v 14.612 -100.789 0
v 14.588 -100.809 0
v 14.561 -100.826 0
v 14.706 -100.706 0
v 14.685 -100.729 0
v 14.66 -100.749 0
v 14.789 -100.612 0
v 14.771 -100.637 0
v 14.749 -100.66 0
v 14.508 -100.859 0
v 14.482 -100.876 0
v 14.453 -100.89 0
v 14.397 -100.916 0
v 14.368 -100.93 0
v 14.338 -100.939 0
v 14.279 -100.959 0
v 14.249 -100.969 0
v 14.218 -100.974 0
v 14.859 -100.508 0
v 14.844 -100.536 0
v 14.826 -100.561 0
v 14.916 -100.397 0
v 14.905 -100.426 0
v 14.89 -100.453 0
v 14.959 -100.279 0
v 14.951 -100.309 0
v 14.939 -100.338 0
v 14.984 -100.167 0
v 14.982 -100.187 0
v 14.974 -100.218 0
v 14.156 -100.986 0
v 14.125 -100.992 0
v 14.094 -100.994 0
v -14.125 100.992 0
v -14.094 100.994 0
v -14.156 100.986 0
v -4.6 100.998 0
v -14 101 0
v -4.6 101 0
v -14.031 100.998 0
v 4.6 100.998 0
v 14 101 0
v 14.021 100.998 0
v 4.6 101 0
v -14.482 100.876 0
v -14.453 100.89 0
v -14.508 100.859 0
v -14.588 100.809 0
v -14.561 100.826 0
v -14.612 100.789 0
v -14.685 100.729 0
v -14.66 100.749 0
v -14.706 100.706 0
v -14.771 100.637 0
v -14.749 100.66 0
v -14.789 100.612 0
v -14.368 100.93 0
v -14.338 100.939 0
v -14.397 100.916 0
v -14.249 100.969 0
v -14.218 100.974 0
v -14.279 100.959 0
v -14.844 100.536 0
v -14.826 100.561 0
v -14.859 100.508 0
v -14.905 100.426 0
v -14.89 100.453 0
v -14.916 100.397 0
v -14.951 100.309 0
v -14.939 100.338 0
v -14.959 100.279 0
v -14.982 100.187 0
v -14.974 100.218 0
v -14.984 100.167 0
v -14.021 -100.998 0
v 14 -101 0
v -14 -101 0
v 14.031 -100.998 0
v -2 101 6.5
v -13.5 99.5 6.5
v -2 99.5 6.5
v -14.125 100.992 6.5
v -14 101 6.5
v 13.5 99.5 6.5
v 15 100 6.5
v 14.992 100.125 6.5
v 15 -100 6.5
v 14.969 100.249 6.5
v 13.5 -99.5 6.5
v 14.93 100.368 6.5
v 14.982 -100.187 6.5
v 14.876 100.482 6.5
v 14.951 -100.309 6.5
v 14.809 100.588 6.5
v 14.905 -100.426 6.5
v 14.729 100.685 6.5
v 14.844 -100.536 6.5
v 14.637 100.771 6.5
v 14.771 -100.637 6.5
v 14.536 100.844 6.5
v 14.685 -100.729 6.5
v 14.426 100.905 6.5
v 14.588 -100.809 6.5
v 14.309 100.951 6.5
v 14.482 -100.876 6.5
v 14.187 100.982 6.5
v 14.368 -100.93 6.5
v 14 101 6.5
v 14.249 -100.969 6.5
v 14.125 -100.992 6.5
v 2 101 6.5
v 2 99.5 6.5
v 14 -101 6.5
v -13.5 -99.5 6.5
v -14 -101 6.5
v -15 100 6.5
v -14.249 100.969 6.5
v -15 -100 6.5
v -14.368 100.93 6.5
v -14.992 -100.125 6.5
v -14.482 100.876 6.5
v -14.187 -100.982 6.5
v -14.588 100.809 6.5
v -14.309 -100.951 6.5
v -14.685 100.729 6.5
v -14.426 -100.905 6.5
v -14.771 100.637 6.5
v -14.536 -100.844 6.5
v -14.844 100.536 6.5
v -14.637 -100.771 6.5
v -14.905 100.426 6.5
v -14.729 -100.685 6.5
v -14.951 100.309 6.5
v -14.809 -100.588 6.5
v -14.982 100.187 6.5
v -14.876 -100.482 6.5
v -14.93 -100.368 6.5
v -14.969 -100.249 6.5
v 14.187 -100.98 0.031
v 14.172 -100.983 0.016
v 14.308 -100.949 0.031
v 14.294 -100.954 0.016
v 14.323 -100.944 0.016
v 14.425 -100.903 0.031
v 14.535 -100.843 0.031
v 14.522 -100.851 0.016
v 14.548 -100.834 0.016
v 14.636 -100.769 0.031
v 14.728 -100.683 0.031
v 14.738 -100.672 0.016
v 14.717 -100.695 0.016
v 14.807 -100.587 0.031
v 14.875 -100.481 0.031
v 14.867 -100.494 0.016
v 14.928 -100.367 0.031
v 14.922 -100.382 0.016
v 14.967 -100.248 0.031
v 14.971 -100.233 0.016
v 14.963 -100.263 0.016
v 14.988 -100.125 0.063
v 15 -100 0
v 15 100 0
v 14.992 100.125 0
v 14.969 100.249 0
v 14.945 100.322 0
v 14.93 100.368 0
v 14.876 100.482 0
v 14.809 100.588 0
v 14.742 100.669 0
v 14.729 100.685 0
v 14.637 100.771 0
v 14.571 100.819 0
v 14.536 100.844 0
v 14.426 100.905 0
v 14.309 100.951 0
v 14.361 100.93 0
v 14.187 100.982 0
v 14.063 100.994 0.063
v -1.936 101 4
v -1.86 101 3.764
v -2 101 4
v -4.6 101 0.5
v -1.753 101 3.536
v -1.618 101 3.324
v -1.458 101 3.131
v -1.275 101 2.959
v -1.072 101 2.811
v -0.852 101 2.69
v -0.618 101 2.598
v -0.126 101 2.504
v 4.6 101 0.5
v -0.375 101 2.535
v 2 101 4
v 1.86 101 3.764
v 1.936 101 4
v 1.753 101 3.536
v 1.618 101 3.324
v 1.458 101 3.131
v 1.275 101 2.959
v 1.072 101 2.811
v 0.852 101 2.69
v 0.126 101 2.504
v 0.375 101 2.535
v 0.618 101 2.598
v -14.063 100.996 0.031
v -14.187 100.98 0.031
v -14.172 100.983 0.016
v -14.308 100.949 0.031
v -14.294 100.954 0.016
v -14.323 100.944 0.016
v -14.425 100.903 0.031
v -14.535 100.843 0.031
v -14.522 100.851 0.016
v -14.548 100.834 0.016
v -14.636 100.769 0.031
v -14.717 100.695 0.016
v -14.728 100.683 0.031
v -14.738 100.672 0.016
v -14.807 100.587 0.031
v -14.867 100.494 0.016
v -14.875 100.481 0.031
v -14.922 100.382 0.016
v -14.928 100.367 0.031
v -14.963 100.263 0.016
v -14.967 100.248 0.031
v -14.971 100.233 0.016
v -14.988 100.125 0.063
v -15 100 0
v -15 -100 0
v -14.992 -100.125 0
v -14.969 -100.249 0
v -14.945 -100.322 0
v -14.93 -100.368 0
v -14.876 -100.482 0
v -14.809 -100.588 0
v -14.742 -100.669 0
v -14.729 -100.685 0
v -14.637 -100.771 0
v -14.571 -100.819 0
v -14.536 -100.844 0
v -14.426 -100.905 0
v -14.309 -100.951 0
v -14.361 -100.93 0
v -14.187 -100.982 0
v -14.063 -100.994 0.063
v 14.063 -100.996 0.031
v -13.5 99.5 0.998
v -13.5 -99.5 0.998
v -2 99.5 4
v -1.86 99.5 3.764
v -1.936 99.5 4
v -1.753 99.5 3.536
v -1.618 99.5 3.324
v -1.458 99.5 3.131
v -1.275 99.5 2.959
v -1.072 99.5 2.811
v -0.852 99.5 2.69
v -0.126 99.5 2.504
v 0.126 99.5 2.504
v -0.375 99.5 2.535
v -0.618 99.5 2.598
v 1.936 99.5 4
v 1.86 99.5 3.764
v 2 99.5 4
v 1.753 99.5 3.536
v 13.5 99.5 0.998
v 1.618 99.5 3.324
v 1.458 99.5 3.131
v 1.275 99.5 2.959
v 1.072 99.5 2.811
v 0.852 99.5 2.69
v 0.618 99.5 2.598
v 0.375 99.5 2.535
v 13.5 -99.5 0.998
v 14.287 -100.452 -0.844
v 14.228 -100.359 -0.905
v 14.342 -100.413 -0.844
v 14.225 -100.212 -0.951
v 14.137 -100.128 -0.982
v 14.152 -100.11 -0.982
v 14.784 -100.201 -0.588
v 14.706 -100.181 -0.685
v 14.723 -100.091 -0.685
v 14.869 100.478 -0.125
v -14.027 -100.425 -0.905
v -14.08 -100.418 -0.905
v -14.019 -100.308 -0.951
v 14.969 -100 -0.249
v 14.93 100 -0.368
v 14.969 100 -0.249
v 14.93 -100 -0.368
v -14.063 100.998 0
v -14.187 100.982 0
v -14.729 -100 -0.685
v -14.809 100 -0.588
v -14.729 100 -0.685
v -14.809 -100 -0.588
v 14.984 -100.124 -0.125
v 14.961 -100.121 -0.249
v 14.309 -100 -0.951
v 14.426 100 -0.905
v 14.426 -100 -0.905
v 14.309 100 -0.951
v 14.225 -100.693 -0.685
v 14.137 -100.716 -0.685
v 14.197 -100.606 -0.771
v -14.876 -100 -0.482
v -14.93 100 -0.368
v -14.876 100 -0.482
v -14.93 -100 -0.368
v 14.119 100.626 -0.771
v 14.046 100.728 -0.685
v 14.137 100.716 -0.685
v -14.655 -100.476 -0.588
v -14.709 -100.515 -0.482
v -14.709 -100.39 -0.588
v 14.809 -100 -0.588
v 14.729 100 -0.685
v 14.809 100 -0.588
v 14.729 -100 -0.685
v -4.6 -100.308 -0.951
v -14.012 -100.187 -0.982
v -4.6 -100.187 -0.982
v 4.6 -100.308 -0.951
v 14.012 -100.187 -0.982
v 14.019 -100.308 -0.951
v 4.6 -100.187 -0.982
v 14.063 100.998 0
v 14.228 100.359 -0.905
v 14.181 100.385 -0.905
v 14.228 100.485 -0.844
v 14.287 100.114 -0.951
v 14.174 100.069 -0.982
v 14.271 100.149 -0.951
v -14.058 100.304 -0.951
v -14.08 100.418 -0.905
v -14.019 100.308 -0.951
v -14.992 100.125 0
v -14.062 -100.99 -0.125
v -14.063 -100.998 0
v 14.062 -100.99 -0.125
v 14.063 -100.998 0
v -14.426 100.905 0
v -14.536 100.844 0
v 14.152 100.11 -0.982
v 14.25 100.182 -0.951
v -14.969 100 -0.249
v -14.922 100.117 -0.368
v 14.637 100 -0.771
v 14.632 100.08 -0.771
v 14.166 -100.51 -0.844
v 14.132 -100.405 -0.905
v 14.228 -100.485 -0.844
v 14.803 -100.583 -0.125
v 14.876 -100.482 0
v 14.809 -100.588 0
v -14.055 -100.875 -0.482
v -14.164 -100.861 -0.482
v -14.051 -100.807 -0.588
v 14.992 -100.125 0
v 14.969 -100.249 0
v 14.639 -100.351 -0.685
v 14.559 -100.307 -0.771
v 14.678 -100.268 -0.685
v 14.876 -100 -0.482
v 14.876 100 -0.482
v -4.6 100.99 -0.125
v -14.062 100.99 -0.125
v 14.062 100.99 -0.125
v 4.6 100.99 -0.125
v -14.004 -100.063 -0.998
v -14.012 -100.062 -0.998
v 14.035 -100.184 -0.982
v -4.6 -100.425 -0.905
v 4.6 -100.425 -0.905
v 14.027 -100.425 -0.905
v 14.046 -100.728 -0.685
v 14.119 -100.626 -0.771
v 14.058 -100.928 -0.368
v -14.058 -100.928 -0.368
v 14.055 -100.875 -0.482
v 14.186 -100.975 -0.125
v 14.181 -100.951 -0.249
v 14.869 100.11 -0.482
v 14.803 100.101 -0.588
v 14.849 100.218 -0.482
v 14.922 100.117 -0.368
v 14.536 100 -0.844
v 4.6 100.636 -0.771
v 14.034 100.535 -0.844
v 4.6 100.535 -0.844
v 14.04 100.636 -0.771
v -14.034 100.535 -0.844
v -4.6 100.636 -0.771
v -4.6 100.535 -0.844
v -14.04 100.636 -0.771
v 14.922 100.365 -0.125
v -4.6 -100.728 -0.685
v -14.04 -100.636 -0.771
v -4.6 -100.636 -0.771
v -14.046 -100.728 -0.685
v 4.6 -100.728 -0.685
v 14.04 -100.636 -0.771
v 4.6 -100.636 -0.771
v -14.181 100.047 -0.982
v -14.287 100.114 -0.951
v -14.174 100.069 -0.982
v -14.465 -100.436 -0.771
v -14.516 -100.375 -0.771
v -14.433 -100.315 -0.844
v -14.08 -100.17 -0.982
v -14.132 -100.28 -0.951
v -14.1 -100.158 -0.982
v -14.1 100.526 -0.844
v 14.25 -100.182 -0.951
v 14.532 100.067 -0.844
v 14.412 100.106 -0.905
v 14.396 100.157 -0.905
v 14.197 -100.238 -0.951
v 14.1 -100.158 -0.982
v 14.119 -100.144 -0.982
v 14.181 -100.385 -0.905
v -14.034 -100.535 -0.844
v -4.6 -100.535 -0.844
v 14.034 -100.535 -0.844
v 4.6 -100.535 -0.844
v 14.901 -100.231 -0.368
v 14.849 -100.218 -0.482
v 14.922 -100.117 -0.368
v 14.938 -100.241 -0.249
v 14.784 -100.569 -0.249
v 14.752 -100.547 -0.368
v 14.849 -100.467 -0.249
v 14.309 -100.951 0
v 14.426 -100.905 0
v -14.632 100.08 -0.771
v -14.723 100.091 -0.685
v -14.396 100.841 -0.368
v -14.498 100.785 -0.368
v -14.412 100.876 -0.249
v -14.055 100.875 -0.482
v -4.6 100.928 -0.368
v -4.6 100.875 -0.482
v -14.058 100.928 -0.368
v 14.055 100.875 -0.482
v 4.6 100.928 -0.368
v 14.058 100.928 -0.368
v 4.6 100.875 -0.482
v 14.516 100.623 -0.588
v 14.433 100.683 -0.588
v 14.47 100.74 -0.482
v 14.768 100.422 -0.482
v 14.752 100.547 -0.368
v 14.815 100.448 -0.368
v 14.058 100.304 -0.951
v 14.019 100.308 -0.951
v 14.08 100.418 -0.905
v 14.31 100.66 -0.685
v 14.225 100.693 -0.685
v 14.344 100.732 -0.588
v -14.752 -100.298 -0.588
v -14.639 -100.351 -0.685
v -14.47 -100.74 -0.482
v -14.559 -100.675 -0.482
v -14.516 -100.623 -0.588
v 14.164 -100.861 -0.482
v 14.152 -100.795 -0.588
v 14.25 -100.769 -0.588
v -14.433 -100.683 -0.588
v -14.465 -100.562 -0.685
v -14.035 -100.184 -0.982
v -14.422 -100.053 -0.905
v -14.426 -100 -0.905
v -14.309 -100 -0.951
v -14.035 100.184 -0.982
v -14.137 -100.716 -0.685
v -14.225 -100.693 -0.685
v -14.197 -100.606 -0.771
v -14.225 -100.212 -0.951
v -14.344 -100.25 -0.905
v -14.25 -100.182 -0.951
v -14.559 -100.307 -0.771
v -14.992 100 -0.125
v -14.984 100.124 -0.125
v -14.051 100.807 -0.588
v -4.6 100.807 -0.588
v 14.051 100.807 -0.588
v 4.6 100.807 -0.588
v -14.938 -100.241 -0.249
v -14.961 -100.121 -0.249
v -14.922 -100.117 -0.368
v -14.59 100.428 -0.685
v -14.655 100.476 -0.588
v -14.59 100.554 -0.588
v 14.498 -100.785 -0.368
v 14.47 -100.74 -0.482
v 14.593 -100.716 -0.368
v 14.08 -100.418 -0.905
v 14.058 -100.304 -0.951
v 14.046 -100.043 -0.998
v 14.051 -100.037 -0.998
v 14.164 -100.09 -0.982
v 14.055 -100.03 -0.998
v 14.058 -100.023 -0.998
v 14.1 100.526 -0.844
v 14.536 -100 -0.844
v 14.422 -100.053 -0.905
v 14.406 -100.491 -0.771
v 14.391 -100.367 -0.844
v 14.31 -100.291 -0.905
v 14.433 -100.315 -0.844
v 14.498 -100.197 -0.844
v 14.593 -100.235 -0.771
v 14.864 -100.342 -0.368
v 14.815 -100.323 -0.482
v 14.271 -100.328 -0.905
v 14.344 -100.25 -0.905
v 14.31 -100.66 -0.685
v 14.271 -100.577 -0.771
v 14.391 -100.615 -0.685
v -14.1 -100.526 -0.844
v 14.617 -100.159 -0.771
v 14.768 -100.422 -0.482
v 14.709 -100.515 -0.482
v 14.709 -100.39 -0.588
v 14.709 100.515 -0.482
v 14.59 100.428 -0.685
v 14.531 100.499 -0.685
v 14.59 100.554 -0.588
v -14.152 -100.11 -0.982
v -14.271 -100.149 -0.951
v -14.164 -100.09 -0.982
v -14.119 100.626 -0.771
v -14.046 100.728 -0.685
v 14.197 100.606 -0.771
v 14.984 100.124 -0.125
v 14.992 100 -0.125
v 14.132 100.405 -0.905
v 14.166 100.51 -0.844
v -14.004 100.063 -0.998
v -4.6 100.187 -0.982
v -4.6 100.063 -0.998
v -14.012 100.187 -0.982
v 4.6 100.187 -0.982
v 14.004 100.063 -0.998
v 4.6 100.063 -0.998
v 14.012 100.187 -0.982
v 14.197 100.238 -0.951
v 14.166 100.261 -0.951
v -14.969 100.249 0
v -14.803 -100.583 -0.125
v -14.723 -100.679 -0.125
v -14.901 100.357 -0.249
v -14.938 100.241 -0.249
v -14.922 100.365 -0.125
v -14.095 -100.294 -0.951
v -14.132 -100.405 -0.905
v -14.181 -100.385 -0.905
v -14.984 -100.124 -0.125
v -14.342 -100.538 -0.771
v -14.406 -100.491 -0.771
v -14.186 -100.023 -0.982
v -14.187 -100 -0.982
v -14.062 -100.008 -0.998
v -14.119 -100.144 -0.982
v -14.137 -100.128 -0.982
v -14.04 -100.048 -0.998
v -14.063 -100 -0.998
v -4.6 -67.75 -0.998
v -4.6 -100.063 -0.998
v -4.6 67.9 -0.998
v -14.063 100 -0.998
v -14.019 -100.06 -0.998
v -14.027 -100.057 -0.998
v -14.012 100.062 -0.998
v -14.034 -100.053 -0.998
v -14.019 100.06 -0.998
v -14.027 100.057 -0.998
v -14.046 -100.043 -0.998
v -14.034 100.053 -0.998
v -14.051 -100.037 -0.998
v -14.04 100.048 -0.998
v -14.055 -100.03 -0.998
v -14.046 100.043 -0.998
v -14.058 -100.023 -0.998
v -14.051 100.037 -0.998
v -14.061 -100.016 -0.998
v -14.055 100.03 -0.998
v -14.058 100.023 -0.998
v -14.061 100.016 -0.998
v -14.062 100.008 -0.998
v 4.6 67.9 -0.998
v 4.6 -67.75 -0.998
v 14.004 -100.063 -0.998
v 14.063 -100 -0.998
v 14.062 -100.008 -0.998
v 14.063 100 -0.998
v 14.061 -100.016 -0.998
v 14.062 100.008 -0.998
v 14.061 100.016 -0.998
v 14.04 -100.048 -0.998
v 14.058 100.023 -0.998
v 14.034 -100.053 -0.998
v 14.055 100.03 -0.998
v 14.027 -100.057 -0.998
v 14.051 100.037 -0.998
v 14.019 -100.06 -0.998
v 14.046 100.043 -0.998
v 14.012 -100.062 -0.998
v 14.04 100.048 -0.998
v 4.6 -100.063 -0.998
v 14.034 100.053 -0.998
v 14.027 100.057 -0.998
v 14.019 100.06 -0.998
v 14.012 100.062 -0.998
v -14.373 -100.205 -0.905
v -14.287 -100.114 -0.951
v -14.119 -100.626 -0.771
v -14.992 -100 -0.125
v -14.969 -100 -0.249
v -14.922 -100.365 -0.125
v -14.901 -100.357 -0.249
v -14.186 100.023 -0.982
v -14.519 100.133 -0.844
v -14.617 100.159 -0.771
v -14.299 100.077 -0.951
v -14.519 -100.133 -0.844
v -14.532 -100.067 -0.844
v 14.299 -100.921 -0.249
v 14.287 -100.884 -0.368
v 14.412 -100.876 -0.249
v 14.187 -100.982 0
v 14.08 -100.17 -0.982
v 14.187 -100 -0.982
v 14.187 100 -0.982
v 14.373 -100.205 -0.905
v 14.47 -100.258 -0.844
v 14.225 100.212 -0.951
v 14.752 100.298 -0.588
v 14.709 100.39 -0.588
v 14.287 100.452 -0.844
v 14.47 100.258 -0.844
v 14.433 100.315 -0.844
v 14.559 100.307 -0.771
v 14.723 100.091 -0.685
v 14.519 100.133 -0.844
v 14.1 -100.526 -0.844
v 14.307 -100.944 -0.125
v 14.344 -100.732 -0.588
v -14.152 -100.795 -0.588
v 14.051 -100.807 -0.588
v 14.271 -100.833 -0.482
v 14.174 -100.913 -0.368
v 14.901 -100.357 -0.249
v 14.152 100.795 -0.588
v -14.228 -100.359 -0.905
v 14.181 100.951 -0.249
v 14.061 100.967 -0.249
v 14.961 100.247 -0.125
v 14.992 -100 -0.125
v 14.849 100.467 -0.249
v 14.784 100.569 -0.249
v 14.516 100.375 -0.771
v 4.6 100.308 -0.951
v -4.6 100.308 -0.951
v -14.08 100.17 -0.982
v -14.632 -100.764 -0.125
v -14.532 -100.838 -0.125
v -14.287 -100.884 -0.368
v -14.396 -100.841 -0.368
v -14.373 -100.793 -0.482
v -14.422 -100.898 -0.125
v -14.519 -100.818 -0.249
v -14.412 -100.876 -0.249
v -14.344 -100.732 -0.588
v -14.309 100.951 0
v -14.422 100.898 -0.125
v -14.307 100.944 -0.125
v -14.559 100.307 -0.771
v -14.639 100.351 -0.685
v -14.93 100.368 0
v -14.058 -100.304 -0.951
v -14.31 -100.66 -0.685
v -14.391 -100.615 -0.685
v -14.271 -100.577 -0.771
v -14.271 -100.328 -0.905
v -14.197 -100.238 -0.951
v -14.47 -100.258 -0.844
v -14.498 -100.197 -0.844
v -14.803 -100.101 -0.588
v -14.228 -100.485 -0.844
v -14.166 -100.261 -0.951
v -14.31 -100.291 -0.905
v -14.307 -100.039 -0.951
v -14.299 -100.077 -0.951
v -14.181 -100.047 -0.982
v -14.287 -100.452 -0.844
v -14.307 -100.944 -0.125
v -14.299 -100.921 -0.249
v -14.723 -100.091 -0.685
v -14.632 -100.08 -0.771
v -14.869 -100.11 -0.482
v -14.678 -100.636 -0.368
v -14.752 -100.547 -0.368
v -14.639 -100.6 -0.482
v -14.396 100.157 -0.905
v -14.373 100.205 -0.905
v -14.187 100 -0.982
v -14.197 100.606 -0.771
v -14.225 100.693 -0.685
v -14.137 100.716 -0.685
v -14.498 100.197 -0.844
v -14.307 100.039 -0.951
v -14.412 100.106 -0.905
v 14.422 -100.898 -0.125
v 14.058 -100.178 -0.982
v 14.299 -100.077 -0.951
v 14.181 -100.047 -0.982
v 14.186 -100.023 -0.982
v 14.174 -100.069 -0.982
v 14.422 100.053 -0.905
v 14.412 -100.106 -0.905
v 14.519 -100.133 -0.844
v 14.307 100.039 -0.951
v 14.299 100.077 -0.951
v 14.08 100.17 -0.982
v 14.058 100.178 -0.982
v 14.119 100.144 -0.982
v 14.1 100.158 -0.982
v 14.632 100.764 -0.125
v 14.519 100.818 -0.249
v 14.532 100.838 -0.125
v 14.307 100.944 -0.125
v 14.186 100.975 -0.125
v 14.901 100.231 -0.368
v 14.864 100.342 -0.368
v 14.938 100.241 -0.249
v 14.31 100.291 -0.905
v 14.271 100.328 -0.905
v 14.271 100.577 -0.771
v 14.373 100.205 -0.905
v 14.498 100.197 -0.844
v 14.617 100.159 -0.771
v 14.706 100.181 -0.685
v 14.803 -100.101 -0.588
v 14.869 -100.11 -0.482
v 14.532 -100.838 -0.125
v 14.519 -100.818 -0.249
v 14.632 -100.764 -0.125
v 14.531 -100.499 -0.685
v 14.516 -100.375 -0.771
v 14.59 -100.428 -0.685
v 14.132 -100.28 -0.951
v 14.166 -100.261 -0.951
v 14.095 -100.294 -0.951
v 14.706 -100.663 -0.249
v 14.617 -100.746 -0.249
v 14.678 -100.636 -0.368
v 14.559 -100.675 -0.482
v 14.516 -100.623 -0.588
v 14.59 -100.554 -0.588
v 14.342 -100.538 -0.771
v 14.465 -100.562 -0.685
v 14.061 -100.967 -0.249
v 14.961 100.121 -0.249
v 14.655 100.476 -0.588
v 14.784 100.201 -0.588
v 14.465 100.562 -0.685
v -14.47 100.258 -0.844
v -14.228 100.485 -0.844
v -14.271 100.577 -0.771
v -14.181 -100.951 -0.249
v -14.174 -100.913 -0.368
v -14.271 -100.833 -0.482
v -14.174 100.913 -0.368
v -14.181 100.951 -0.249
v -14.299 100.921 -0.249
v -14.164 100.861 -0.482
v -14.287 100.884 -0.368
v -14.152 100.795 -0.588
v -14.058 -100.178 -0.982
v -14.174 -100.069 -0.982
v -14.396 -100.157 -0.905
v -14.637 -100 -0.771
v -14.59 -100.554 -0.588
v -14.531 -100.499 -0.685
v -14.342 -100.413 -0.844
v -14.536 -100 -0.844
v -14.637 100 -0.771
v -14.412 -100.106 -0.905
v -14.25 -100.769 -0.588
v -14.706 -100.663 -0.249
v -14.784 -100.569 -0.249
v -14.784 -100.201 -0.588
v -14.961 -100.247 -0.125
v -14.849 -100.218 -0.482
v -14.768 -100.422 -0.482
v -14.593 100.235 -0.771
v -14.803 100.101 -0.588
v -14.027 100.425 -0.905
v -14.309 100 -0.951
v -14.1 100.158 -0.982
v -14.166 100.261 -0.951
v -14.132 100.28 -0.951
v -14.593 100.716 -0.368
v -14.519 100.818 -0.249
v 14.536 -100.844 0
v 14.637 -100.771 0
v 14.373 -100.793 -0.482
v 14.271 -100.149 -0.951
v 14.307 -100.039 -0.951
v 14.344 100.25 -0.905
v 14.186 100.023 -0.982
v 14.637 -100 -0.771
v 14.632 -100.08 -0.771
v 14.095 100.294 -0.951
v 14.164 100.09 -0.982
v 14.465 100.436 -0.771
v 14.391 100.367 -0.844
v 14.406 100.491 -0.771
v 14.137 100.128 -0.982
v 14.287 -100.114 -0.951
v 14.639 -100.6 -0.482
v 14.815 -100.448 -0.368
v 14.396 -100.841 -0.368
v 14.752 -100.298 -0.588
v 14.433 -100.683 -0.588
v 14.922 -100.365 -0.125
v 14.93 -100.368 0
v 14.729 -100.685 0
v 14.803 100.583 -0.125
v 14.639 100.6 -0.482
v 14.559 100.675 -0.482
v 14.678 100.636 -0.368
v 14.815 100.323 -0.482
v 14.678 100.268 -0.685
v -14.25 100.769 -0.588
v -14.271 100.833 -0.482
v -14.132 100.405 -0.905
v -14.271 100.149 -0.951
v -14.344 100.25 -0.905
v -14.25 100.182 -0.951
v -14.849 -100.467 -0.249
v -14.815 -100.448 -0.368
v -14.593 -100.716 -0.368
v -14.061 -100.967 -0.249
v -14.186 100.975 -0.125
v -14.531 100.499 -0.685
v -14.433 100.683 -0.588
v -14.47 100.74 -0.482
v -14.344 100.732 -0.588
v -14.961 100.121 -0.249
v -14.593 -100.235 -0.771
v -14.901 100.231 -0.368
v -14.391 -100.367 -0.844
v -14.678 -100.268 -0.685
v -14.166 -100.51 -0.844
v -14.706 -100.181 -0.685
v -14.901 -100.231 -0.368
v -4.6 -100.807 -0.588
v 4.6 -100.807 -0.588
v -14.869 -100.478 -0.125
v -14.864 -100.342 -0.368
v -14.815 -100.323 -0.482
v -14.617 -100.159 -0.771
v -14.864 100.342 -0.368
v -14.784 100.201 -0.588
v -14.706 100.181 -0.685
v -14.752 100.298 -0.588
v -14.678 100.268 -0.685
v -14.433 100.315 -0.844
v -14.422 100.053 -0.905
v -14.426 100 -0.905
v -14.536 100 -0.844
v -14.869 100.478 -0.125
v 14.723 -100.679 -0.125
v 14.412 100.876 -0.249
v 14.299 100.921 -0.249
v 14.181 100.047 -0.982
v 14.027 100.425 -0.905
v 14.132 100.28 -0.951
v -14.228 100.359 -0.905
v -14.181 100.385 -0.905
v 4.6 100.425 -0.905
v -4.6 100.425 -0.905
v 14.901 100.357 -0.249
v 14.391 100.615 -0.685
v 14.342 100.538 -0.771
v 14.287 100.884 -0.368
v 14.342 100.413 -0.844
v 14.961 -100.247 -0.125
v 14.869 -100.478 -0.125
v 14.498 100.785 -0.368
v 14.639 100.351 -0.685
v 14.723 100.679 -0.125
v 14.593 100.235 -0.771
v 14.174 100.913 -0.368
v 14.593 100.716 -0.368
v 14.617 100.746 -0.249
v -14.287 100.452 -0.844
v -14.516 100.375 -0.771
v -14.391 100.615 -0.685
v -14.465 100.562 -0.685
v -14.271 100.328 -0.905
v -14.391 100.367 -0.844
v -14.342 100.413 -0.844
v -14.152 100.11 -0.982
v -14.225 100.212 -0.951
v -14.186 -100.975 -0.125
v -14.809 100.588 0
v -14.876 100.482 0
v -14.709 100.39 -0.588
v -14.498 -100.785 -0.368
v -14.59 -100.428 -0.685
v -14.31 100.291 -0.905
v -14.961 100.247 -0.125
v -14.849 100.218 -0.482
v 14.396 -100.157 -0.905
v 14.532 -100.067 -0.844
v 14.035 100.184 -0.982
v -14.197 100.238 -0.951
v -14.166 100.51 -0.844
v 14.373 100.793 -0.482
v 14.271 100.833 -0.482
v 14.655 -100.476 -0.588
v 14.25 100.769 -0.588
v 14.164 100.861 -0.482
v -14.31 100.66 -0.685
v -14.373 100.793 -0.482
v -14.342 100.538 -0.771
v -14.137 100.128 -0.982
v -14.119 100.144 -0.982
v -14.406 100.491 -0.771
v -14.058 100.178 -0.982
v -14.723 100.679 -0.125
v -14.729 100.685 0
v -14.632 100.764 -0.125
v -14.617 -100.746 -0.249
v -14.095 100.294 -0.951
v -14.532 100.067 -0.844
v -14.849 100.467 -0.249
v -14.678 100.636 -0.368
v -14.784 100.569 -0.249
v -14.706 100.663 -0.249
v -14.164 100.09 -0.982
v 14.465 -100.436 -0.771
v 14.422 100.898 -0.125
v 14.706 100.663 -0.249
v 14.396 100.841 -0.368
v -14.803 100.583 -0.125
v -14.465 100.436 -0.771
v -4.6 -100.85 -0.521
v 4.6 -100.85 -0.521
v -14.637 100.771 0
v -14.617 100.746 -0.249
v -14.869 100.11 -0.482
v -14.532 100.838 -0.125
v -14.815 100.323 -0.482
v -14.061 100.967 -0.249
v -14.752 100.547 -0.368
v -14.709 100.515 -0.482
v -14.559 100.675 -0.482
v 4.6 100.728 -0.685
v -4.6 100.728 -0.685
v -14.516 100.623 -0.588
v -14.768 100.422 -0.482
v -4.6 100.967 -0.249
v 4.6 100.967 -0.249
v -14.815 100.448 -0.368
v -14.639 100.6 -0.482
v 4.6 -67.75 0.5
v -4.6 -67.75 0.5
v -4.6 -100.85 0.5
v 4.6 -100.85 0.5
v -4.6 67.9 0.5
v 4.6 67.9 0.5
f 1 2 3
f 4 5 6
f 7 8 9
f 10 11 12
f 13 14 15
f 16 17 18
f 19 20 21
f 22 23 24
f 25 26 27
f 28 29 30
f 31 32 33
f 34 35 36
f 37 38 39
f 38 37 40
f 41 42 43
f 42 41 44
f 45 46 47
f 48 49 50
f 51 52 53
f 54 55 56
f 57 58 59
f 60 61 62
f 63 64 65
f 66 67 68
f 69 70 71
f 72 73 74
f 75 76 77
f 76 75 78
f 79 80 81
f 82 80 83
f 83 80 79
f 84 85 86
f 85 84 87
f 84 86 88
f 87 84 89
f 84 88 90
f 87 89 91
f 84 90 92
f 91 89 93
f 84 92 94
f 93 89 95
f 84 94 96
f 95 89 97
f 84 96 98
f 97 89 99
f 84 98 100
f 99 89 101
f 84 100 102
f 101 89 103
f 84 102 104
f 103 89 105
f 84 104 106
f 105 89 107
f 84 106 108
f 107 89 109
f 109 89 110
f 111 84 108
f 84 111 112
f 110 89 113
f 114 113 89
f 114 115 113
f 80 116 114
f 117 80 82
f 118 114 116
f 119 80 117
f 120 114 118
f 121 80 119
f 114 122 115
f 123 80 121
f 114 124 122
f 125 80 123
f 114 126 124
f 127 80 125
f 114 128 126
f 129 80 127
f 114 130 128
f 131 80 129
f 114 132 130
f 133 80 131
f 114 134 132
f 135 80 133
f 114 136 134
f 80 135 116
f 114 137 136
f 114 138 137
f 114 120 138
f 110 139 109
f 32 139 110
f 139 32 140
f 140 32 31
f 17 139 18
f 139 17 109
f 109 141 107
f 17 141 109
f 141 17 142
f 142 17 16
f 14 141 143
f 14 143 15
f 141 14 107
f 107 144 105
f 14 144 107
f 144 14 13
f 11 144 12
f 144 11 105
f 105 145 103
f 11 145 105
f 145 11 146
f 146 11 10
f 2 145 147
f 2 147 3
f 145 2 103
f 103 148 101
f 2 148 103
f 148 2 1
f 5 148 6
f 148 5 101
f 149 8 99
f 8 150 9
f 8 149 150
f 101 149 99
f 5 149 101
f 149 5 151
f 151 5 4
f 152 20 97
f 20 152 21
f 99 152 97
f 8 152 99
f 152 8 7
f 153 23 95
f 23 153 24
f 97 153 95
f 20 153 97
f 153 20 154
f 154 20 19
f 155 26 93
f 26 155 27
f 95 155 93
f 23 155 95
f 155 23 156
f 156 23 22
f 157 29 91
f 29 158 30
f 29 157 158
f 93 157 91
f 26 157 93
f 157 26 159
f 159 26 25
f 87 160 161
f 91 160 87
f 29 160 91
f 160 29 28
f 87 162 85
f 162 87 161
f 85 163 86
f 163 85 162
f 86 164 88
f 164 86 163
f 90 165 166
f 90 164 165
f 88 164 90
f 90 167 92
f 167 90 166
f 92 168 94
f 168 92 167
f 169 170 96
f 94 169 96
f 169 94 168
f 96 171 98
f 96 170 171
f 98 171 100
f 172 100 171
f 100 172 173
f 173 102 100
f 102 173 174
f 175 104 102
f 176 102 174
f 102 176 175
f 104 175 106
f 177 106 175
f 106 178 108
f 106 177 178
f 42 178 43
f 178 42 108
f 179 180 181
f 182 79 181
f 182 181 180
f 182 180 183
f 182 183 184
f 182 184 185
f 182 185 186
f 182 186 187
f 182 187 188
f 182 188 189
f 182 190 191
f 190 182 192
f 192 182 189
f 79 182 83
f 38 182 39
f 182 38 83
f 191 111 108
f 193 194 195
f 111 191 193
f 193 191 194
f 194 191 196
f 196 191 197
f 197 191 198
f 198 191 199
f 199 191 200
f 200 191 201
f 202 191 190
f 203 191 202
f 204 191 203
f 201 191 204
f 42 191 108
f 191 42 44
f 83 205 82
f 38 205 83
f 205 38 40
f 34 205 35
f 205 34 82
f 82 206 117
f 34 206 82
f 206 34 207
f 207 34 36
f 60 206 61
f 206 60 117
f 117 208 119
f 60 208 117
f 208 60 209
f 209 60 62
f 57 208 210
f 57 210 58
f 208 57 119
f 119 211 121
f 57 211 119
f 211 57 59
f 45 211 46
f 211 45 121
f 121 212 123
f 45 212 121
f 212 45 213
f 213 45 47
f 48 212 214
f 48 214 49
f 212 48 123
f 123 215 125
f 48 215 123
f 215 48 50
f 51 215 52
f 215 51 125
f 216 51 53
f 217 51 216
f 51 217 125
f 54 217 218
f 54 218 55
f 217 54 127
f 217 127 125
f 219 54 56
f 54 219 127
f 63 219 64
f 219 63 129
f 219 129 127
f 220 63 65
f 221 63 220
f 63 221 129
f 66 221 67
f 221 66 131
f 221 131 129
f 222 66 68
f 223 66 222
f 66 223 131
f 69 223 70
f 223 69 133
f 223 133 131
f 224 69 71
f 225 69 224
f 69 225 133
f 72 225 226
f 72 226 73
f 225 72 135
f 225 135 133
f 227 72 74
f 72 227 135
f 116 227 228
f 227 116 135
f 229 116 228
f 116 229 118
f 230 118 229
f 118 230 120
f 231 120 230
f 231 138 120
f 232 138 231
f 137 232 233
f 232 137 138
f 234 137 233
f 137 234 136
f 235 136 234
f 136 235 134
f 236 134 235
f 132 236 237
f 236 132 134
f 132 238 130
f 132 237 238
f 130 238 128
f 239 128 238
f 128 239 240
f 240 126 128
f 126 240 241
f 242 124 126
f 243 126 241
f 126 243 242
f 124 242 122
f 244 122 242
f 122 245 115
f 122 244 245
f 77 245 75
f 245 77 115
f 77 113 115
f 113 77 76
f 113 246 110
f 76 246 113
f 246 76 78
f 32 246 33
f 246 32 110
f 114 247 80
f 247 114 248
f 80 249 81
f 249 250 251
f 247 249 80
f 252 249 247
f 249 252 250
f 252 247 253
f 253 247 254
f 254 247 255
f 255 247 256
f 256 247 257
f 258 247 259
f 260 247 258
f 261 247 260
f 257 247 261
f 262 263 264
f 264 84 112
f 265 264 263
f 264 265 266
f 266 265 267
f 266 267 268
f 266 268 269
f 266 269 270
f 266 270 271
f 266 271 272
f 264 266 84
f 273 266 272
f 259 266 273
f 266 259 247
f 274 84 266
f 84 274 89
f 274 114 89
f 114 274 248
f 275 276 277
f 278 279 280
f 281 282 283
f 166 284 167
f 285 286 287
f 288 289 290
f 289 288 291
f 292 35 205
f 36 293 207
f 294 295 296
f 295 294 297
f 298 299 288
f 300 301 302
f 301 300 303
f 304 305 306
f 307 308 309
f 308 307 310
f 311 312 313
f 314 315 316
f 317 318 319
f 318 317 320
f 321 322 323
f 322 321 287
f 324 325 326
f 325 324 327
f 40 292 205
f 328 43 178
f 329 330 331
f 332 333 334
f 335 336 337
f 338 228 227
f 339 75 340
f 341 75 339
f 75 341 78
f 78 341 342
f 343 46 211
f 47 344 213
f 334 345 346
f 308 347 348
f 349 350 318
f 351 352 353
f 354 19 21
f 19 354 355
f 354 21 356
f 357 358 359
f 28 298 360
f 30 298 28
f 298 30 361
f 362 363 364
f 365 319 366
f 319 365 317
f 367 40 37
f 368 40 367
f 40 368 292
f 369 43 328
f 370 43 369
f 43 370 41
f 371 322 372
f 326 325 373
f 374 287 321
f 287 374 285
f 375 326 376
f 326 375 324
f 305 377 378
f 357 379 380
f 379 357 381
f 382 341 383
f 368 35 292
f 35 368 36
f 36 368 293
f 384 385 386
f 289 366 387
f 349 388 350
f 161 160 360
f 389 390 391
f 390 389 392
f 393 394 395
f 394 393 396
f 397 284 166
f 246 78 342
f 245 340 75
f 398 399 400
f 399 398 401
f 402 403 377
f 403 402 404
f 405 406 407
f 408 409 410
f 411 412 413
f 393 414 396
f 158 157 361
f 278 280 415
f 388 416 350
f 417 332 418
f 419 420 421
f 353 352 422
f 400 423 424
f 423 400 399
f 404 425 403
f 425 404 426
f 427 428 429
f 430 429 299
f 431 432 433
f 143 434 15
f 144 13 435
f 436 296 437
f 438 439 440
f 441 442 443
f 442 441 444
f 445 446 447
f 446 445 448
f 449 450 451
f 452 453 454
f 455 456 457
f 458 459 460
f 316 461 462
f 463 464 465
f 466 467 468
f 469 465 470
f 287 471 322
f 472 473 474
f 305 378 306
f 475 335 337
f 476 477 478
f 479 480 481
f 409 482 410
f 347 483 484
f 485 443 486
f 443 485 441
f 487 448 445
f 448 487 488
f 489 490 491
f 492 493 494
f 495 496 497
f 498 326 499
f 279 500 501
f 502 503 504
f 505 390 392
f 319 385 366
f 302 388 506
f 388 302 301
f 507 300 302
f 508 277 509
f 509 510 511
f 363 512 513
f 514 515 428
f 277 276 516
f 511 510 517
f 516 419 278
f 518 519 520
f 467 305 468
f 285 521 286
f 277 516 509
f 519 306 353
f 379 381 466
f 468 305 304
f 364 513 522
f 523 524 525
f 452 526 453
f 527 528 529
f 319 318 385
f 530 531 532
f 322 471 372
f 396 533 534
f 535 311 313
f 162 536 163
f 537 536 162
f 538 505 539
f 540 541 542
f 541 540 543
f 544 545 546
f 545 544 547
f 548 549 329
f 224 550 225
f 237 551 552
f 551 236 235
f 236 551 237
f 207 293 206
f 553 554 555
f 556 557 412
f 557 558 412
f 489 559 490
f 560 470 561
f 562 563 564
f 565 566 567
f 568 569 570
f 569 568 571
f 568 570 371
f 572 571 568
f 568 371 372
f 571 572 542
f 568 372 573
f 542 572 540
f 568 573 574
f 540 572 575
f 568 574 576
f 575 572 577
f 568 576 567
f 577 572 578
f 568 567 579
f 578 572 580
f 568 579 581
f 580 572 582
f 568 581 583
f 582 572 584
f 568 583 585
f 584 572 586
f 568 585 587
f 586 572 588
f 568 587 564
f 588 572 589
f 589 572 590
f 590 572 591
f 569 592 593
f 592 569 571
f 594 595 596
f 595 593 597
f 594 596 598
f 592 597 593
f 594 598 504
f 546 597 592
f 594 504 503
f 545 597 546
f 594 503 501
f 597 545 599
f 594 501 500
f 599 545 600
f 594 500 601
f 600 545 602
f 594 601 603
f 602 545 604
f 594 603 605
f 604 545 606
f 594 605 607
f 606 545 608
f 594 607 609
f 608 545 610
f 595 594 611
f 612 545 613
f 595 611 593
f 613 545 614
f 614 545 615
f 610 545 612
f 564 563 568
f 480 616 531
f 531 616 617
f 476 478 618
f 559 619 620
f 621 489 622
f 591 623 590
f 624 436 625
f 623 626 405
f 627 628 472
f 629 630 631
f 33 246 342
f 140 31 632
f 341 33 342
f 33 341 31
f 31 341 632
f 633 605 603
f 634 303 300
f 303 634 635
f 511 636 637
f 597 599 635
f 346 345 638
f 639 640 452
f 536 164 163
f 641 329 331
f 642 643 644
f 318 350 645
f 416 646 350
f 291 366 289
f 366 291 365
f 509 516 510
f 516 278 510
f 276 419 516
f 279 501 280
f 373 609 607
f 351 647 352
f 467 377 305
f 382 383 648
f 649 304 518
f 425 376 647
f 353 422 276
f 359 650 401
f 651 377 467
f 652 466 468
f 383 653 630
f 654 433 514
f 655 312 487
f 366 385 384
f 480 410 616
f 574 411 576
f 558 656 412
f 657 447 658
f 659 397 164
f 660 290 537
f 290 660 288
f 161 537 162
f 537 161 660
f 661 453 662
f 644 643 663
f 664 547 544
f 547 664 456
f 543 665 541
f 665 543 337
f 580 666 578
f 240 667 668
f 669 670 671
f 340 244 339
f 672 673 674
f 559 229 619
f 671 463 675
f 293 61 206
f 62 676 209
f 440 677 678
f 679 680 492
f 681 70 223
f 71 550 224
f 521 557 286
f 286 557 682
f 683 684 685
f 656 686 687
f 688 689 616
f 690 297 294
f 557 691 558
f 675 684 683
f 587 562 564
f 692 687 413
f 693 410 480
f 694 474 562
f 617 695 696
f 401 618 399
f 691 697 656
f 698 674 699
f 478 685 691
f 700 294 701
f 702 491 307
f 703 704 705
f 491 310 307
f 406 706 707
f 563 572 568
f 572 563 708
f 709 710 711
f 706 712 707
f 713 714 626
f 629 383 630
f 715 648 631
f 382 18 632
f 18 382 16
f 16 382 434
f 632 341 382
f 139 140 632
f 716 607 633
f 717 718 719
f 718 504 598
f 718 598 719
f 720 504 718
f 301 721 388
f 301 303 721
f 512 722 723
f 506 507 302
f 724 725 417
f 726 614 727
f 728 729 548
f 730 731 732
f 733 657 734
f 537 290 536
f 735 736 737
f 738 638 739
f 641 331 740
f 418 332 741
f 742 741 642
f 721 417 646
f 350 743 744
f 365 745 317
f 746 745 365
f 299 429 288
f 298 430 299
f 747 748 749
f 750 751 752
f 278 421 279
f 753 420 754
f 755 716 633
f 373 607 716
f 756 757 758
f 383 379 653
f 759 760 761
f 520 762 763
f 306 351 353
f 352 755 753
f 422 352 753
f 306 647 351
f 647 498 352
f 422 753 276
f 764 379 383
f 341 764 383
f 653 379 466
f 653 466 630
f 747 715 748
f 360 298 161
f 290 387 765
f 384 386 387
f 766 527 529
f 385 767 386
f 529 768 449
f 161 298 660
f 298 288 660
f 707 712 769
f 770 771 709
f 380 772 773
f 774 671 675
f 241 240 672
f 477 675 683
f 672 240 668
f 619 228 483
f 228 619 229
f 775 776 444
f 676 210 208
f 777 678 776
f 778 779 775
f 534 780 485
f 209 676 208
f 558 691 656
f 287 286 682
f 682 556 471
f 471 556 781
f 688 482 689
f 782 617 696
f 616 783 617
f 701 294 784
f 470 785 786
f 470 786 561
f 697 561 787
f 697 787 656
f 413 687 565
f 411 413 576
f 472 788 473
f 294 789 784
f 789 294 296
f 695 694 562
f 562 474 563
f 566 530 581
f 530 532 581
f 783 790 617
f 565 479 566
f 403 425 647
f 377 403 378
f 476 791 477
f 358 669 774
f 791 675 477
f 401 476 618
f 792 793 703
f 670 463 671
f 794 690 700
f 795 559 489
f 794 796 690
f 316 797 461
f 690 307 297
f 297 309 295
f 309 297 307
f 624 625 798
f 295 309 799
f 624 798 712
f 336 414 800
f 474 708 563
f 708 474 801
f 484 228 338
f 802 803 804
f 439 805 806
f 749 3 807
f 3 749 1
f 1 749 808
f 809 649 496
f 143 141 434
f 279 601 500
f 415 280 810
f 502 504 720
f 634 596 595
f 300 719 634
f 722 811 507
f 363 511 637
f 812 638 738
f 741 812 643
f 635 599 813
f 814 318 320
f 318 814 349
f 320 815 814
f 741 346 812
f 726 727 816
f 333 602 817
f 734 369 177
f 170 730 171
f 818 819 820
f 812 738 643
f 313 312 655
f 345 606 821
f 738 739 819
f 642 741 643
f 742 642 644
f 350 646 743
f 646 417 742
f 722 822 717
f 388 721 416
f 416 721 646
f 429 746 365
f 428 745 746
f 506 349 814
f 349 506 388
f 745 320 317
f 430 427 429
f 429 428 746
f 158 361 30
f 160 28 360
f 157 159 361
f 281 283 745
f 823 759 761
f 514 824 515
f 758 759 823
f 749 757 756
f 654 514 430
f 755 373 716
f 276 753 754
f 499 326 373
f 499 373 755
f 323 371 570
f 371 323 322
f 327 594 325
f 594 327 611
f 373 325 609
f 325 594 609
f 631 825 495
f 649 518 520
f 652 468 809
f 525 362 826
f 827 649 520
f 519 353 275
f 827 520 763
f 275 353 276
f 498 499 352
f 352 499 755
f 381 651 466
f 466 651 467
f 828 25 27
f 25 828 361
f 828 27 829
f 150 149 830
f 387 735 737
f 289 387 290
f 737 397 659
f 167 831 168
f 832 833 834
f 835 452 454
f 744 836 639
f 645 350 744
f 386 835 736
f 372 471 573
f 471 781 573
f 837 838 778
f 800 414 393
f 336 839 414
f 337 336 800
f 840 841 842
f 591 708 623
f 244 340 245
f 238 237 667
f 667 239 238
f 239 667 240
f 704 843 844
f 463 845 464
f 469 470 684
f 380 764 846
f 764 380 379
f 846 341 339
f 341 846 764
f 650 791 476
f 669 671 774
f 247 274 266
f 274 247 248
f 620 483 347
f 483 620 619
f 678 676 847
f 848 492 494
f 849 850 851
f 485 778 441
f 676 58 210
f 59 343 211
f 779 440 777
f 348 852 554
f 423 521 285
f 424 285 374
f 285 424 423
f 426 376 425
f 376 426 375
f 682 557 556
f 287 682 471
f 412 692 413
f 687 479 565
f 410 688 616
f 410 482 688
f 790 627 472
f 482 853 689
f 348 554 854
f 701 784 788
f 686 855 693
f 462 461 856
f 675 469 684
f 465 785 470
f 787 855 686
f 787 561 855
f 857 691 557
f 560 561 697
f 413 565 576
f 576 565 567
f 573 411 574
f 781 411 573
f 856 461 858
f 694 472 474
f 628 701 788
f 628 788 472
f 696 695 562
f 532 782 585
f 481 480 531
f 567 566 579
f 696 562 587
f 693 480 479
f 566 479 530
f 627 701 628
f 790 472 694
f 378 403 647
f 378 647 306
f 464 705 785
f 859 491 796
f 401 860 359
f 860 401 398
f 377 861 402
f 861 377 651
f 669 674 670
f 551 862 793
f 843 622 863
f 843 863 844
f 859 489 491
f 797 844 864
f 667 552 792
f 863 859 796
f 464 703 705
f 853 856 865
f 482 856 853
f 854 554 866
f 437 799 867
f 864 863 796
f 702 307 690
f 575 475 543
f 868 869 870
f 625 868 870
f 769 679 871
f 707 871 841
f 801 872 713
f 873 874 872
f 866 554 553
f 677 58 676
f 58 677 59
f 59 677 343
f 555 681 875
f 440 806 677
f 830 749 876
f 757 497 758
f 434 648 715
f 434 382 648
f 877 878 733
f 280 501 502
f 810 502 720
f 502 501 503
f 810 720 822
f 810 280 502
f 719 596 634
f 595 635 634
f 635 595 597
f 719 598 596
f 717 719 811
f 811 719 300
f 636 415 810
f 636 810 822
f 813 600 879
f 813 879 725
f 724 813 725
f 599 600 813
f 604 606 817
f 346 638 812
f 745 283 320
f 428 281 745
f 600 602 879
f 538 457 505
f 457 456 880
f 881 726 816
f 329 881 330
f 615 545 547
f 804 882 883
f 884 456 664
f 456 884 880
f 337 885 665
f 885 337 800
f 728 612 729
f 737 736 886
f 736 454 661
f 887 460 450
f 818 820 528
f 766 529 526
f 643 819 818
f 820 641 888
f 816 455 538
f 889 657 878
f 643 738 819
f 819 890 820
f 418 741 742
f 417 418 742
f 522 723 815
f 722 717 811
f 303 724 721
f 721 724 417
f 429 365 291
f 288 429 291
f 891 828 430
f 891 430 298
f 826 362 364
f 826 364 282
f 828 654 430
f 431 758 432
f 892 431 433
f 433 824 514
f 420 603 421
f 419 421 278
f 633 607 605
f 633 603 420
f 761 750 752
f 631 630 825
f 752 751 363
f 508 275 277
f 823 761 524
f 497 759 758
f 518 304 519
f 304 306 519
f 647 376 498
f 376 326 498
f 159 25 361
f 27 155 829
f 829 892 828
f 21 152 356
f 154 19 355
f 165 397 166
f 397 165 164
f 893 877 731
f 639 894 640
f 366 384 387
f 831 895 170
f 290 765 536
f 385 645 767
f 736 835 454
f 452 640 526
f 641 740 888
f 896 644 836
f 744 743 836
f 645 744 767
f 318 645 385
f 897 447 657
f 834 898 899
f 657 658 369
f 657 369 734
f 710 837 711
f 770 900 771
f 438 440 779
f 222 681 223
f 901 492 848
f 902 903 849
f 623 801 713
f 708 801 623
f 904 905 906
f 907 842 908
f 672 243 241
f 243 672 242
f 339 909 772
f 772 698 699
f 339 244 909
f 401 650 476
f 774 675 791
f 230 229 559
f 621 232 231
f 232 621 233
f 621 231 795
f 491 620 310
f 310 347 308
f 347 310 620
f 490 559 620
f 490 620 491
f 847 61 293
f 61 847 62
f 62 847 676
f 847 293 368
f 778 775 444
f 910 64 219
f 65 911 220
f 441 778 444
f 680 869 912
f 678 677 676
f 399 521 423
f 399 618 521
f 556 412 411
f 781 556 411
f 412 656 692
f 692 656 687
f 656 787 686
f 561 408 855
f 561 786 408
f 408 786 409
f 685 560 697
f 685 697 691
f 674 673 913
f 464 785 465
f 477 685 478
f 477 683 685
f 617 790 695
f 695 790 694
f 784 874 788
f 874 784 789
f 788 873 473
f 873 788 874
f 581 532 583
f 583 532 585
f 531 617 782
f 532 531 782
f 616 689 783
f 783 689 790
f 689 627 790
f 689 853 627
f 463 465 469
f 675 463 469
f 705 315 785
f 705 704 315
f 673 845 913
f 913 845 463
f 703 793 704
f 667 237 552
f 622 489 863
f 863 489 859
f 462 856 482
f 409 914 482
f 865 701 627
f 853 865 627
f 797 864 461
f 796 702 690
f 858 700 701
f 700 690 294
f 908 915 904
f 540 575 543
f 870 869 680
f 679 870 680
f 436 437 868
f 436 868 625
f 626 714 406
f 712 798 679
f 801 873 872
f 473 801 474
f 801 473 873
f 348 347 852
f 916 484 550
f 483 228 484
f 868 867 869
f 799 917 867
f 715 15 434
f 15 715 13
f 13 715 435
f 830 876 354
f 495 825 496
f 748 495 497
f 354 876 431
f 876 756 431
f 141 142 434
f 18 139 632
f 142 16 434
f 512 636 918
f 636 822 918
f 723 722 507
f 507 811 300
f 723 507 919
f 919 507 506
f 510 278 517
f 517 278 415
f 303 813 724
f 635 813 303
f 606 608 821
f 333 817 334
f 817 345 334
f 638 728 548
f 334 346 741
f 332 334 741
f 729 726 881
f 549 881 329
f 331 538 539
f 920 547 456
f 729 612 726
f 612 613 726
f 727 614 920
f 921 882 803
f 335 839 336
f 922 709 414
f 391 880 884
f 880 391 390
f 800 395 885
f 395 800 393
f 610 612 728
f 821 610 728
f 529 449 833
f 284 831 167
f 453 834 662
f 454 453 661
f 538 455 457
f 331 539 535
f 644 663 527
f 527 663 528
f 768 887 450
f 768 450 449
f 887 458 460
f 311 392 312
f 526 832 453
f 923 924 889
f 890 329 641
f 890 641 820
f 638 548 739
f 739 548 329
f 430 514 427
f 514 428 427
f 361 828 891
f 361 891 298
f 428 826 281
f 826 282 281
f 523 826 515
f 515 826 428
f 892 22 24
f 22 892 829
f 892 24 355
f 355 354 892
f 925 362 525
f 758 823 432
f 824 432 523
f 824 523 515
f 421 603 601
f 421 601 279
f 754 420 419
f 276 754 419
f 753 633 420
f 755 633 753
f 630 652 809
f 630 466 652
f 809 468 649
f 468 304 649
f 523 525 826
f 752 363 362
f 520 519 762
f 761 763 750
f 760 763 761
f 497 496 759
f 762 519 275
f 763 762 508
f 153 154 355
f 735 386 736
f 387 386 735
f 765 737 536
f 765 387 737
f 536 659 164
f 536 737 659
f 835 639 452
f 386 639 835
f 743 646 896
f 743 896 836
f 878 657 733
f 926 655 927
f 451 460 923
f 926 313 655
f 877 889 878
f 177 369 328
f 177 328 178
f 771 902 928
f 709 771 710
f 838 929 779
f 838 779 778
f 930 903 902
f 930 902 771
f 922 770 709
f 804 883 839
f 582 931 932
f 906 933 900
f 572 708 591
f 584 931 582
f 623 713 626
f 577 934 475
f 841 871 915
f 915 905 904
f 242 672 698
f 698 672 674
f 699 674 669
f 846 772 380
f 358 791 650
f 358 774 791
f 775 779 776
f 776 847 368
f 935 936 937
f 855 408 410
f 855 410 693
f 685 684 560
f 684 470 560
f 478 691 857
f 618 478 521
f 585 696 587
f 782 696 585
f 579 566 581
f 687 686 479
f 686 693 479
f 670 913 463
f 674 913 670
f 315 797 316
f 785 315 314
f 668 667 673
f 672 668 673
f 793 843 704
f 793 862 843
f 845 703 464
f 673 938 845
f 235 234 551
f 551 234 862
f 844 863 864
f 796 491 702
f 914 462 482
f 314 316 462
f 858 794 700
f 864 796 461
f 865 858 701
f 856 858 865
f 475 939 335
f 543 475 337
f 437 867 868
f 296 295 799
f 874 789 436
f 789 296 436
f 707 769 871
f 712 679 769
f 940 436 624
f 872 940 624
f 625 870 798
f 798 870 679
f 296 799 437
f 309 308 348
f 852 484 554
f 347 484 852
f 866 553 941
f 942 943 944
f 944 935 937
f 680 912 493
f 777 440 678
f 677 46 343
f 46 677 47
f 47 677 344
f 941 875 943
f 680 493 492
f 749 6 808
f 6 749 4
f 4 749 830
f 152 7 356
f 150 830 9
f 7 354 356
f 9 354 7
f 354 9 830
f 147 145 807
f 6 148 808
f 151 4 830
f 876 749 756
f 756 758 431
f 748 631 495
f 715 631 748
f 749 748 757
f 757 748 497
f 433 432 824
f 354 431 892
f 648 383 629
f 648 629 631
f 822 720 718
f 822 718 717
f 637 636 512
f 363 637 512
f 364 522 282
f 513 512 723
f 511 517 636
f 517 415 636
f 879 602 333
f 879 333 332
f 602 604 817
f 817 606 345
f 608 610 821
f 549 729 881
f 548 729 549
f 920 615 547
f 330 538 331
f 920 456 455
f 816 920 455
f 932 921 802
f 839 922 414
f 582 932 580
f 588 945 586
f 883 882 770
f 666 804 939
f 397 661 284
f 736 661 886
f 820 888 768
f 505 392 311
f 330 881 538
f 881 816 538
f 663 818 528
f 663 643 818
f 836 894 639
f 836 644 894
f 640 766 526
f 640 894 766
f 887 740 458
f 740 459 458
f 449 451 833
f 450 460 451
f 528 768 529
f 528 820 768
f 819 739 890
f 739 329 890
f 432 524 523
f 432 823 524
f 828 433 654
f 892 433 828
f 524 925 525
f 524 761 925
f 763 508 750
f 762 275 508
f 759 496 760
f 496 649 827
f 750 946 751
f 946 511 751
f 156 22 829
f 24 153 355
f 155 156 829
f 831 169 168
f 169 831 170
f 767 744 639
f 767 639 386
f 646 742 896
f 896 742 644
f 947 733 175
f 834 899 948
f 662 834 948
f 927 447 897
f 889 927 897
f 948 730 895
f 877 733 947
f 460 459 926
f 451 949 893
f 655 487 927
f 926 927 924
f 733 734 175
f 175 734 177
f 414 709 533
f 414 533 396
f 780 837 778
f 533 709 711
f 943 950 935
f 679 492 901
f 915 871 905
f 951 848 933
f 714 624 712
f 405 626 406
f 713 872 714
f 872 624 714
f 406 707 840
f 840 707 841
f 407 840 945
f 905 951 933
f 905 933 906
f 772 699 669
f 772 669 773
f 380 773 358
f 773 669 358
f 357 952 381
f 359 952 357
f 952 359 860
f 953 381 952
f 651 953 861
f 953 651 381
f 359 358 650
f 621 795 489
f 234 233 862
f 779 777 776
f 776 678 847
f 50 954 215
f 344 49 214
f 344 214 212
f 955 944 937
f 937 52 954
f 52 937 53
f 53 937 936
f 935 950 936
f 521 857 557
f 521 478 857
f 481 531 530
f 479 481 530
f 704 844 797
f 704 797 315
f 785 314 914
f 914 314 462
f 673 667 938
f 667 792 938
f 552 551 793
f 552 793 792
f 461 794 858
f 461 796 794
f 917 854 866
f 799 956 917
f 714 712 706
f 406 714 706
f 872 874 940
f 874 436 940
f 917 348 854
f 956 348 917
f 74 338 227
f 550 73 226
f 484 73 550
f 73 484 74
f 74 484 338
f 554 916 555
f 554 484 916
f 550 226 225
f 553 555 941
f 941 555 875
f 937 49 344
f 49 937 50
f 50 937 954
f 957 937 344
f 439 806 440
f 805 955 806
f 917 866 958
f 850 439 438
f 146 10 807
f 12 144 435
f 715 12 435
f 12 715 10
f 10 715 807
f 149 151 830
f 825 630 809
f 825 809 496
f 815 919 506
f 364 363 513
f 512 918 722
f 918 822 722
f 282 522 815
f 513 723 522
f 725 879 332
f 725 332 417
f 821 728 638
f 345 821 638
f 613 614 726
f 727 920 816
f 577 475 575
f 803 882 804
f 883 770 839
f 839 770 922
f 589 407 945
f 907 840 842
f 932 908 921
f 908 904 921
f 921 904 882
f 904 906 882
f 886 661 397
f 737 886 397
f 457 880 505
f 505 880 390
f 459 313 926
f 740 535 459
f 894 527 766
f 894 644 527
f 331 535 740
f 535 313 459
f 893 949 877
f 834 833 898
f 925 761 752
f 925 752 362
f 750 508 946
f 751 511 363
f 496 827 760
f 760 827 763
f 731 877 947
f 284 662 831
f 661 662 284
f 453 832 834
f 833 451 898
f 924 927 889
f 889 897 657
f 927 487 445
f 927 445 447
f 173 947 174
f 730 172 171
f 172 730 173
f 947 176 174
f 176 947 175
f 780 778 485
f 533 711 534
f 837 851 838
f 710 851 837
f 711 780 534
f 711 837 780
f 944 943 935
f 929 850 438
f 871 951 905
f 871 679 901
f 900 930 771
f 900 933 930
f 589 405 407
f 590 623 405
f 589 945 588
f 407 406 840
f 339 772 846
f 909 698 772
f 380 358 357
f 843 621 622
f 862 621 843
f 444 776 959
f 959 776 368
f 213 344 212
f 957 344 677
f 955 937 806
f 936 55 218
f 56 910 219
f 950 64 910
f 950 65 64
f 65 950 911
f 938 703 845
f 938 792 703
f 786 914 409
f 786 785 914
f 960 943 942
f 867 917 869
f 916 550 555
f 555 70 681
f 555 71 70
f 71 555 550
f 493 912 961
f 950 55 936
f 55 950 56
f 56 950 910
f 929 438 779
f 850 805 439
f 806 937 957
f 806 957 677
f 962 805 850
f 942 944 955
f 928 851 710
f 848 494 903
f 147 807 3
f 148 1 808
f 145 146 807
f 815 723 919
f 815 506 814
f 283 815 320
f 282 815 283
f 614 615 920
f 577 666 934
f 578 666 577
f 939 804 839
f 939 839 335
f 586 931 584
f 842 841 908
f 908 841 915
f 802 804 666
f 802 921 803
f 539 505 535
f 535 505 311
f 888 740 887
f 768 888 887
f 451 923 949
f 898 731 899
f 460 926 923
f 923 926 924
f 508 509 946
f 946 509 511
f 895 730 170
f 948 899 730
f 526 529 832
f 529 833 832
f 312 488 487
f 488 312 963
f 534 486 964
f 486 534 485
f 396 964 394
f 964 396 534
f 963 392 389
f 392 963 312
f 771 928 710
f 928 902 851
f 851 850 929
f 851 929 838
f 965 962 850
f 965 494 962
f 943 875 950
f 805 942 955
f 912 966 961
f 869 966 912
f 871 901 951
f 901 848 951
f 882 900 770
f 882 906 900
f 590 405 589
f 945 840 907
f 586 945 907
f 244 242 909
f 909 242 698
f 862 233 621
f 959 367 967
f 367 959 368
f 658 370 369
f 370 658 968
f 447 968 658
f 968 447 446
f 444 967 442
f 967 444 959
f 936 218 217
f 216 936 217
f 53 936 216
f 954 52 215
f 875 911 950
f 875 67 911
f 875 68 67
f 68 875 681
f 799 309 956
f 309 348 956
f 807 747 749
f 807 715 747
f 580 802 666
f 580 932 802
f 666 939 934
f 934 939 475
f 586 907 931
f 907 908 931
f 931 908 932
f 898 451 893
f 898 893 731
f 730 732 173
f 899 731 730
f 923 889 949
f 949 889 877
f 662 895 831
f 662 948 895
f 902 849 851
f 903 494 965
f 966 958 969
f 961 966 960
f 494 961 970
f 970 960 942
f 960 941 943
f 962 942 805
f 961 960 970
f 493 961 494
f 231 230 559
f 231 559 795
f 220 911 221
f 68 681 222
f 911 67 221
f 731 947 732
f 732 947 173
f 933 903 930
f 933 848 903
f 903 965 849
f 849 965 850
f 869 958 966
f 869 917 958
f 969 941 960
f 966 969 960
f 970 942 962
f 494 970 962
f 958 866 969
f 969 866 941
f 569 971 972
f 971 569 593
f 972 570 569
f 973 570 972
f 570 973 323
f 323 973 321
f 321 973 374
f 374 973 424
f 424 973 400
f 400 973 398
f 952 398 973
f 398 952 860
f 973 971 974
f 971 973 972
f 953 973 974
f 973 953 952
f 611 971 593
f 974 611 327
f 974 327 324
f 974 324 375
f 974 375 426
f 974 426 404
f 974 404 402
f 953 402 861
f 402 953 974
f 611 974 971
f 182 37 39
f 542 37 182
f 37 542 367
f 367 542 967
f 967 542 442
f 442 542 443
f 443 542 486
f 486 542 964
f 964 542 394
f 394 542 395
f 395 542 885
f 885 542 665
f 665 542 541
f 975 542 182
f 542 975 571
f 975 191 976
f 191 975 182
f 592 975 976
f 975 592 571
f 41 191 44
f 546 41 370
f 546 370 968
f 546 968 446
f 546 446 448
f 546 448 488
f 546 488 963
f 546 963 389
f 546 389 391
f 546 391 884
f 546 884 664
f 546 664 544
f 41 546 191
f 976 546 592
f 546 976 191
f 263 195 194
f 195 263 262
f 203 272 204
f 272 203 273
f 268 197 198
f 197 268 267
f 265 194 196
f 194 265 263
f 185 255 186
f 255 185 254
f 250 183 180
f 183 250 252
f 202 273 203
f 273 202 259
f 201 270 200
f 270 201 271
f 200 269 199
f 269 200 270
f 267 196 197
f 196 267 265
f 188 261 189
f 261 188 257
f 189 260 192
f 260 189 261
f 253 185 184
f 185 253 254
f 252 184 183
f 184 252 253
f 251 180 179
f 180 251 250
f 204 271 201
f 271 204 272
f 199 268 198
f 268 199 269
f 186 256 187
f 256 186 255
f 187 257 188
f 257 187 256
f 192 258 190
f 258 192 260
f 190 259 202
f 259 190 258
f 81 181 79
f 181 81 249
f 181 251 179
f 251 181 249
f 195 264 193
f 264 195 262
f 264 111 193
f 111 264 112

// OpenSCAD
$fn=50;
BOX_W = 28; // Box Width
BOX_L = 200;// Box Length
BOX_H = 6.5; // Box Height (adjusted to have 4mm base thickness)
CORNER_RADIUS = 1.0; // Radius of corners
WALL = 1;// Wall Thickness

//KEEL_OUTSIDE_WIDTH=9.1;
KEEL_WIDTH=9.2;
KEEL_DEPTH=2;
KEEL_LENGTH=31;

CON_OUTSIDE=6;
CON_INSIDE=4;
CON_LENGTH=3;

difference() {
  union() {
    linear_extrude( BOX_H )
      difference(){
        offset(r=CORNER_RADIUS) square( [BOX_W, BOX_L], center=true );
        offset(r= CORNER_RADIUS - WALL) square([BOX_W-WALL, BOX_L-WALL], center=true );
      };

    coordinates = [ [0,0],[0,BOX_L],[BOX_W,BOX_L],[BOX_W,0] ];

    translate ( [-BOX_W/2, -BOX_L/2] )
      hull()
      for (i = coordinates)
        translate(i) sphere(CORNER_RADIUS);
  }
  // opposite audio connector side
  translate([0,-67.75,BOX_H-7])
  rotate([90,0,0])
  #linear_extrude(KEEL_LENGTH+2.1) square([KEEL_WIDTH,KEEL_DEPTH], center=true);  
  
  // audio connector side
  translate([0,101,BOX_H-7])
  rotate([90,0,0])
  #linear_extrude(KEEL_LENGTH+2.1) square([KEEL_WIDTH,KEEL_DEPTH], center=true);  
  
  translate([0,102.0,BOX_H-2])
  rotate([90,0,0])
  cylinder(h=CON_LENGTH,r=CON_INSIDE/2);
  
  translate([0,102.0,BOX_H-1])
  rotate([90,0,0])
  //cylinder(h=CON_LENGTH+1,r=CON_INSIDE/2);
  linear_extrude(3.0) square([4.0,3], center=true);
}
